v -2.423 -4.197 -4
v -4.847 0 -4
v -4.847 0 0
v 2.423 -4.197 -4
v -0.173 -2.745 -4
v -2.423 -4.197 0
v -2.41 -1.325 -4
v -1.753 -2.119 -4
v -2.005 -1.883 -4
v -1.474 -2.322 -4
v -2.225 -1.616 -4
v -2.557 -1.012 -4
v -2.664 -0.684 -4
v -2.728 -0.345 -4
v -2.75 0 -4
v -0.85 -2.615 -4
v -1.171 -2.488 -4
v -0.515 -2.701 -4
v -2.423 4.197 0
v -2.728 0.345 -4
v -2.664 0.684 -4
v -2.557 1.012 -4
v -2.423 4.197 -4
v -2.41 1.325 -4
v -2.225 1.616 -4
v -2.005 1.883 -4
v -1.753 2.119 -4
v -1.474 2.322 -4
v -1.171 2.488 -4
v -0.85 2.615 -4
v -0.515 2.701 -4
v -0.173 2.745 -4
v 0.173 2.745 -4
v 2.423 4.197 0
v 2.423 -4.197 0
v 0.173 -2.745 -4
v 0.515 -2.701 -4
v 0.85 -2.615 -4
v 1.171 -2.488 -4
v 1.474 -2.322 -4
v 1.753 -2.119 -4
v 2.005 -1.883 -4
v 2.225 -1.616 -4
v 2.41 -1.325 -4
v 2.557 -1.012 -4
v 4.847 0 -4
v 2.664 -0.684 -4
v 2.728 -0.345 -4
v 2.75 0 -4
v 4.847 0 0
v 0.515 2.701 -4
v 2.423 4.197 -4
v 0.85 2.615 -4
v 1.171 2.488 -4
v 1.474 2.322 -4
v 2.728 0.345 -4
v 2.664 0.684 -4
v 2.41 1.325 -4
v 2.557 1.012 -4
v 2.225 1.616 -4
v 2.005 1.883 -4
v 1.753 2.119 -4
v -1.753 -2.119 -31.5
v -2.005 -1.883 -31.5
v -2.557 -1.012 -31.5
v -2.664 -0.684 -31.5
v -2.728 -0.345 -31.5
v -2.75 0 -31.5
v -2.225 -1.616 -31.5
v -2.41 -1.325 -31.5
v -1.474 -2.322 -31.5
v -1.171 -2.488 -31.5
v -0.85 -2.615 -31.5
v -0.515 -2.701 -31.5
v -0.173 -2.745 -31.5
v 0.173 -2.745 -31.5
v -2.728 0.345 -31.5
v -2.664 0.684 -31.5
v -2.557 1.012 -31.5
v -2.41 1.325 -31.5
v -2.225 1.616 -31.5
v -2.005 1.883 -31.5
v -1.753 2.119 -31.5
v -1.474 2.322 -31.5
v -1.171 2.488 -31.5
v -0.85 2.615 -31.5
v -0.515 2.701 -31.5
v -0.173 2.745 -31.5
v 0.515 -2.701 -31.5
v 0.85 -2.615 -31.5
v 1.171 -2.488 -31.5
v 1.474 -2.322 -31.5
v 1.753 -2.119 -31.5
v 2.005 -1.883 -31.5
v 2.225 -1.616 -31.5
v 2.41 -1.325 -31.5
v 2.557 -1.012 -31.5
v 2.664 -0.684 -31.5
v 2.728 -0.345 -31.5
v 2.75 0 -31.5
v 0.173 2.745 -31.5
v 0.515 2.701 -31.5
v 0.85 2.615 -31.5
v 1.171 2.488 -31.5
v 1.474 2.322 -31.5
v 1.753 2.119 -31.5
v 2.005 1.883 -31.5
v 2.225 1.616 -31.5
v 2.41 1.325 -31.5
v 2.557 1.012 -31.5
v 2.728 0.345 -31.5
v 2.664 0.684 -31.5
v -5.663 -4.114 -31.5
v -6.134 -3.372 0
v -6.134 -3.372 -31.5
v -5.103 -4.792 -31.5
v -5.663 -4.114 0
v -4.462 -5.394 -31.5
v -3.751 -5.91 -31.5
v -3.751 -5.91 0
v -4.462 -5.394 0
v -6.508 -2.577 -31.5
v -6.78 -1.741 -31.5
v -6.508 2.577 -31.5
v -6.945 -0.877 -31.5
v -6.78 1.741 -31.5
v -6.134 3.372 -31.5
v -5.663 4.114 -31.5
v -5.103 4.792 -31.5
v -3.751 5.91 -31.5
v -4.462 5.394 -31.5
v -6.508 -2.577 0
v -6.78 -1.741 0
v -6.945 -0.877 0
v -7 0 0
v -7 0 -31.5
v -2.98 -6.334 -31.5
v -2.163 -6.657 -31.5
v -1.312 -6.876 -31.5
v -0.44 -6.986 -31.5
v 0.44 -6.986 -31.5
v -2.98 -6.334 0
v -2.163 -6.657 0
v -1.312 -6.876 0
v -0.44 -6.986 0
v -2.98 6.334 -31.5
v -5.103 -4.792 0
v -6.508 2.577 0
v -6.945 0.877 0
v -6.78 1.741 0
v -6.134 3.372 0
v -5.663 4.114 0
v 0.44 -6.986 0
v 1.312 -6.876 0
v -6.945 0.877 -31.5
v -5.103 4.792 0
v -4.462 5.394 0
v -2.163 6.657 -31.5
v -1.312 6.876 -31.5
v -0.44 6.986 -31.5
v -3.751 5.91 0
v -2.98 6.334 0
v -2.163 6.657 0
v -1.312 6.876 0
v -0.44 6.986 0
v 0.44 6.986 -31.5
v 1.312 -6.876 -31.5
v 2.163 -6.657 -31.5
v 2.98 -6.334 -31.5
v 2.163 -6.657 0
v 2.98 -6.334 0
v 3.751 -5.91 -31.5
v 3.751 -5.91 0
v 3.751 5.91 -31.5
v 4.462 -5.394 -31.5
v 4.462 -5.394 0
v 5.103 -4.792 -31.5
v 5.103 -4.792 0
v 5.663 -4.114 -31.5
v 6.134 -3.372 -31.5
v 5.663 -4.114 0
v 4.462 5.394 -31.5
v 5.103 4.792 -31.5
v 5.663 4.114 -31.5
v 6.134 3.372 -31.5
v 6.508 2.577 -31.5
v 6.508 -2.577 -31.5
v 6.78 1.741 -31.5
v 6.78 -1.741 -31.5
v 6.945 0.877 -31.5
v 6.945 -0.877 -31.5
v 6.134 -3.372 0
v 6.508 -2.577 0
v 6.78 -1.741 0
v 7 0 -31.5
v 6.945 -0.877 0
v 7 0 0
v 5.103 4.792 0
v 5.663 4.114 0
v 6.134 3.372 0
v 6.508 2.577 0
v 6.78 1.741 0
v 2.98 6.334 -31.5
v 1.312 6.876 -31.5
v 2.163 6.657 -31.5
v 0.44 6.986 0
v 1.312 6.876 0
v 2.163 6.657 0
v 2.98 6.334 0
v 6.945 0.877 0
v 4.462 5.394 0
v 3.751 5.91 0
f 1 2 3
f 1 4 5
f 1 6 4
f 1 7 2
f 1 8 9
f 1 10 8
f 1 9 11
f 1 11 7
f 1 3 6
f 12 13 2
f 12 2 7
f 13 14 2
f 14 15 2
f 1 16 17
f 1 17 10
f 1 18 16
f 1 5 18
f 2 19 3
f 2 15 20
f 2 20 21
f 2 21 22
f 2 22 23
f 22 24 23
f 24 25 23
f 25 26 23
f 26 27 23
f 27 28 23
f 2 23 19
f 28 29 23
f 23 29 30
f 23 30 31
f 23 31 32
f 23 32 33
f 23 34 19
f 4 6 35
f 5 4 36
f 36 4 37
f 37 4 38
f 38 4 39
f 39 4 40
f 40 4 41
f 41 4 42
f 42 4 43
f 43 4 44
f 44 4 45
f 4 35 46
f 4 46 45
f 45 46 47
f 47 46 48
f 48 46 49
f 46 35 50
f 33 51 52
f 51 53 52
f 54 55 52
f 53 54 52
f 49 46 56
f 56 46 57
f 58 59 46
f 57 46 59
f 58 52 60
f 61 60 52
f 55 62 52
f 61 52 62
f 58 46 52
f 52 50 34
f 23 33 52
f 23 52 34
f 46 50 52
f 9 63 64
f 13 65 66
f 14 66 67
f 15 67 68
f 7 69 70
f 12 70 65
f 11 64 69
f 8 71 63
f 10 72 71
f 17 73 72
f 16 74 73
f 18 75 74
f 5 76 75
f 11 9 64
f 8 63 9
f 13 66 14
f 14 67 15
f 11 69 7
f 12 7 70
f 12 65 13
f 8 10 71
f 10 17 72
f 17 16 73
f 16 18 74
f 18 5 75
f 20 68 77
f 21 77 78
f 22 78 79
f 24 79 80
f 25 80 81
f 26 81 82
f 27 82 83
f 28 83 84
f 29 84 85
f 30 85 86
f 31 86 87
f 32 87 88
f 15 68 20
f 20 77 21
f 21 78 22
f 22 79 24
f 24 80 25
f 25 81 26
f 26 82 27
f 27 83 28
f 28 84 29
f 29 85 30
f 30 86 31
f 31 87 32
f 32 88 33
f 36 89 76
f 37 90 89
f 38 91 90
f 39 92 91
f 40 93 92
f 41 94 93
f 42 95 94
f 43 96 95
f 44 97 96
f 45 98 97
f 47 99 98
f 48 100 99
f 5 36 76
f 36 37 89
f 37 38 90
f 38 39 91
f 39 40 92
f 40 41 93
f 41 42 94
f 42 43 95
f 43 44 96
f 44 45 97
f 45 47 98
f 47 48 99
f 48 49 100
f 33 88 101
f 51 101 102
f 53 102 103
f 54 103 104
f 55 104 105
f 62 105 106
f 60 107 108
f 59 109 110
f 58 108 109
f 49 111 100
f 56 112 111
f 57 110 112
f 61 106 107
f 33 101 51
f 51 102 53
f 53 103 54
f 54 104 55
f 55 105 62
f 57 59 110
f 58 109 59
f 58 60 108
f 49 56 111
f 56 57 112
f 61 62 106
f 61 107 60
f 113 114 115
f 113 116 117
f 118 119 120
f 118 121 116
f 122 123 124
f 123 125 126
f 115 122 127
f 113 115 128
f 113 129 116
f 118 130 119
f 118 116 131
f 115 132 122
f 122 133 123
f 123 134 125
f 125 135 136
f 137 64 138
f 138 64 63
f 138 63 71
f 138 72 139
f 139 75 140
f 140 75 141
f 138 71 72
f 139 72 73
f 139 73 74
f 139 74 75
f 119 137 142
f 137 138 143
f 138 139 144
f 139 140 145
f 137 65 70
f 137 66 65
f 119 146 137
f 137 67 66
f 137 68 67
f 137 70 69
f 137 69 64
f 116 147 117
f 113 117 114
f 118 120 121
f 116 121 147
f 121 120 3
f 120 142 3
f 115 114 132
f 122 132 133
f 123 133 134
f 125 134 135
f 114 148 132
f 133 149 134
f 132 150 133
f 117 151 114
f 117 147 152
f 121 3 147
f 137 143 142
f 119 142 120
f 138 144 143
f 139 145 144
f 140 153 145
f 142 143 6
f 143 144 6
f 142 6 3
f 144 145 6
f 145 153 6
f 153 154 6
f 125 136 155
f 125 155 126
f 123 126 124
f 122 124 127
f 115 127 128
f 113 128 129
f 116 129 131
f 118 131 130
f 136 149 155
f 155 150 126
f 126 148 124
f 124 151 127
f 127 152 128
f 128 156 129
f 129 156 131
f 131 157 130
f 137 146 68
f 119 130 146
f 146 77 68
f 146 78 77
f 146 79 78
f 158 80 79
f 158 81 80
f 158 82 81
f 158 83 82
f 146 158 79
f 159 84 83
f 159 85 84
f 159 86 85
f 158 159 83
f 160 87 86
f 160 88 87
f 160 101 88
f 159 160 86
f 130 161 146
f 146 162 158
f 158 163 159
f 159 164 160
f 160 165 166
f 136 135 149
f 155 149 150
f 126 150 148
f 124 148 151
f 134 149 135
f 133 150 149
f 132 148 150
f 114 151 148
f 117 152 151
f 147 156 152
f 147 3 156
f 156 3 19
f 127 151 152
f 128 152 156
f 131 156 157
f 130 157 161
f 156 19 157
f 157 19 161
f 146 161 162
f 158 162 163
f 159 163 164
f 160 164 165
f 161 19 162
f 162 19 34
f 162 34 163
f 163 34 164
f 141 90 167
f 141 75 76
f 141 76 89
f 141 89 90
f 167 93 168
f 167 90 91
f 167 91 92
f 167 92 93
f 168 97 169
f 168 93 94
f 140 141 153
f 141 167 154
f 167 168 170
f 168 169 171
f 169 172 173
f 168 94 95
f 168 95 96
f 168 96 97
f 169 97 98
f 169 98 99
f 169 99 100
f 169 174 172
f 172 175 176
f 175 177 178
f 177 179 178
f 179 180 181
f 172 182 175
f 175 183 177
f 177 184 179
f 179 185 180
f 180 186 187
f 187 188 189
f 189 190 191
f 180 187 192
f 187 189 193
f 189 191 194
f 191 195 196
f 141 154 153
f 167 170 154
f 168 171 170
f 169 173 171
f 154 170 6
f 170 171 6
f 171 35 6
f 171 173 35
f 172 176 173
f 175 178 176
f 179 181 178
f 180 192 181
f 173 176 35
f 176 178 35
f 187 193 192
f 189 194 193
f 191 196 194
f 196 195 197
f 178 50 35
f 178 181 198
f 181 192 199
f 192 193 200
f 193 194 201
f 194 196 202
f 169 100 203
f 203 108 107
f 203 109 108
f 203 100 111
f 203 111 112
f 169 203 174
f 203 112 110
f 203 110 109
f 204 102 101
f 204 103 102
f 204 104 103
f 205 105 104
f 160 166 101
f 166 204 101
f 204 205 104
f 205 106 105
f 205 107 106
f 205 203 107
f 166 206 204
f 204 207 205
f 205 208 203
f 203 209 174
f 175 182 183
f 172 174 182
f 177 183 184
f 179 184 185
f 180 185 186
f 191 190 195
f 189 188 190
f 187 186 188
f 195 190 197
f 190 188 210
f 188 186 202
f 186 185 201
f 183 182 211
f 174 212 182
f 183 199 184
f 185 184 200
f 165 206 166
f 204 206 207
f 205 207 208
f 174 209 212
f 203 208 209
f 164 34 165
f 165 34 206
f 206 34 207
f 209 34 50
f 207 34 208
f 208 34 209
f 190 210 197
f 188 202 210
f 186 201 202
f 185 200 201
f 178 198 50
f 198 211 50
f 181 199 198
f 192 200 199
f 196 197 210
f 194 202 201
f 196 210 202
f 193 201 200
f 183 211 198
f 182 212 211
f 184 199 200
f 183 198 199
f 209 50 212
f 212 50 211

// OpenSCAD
$fn = 50;

difference() {
	union() {
		translate(v = [0, 0, -31.5]) {
			cylinder(h = 31.5, r = 7.0);
		}
	}
	union() {
		translate(v = [0, 0, 0]) {
			rotate(a = [0, 0, 0]) {
				difference() {
					union() {
						translate(v = [0, 0, -4]) {
							linear_extrude(height = 4) {
								polygon(points = [[4.8468, 0.0], [2.4234000000000004, 4.197451927062417], [-2.423399999999999, 4.197451927062417], [-4.8468, 5.935618106107392e-16], [-2.423400000000002, -4.197451927062416], [2.423399999999997, -4.197451927062419]]);
							}
						}
					}
					union();
				}
			}
		}
		#translate(v = [0, 0, -100.0]) {
			cylinder(h = 200, r = 2.75);
		}
	}
}
